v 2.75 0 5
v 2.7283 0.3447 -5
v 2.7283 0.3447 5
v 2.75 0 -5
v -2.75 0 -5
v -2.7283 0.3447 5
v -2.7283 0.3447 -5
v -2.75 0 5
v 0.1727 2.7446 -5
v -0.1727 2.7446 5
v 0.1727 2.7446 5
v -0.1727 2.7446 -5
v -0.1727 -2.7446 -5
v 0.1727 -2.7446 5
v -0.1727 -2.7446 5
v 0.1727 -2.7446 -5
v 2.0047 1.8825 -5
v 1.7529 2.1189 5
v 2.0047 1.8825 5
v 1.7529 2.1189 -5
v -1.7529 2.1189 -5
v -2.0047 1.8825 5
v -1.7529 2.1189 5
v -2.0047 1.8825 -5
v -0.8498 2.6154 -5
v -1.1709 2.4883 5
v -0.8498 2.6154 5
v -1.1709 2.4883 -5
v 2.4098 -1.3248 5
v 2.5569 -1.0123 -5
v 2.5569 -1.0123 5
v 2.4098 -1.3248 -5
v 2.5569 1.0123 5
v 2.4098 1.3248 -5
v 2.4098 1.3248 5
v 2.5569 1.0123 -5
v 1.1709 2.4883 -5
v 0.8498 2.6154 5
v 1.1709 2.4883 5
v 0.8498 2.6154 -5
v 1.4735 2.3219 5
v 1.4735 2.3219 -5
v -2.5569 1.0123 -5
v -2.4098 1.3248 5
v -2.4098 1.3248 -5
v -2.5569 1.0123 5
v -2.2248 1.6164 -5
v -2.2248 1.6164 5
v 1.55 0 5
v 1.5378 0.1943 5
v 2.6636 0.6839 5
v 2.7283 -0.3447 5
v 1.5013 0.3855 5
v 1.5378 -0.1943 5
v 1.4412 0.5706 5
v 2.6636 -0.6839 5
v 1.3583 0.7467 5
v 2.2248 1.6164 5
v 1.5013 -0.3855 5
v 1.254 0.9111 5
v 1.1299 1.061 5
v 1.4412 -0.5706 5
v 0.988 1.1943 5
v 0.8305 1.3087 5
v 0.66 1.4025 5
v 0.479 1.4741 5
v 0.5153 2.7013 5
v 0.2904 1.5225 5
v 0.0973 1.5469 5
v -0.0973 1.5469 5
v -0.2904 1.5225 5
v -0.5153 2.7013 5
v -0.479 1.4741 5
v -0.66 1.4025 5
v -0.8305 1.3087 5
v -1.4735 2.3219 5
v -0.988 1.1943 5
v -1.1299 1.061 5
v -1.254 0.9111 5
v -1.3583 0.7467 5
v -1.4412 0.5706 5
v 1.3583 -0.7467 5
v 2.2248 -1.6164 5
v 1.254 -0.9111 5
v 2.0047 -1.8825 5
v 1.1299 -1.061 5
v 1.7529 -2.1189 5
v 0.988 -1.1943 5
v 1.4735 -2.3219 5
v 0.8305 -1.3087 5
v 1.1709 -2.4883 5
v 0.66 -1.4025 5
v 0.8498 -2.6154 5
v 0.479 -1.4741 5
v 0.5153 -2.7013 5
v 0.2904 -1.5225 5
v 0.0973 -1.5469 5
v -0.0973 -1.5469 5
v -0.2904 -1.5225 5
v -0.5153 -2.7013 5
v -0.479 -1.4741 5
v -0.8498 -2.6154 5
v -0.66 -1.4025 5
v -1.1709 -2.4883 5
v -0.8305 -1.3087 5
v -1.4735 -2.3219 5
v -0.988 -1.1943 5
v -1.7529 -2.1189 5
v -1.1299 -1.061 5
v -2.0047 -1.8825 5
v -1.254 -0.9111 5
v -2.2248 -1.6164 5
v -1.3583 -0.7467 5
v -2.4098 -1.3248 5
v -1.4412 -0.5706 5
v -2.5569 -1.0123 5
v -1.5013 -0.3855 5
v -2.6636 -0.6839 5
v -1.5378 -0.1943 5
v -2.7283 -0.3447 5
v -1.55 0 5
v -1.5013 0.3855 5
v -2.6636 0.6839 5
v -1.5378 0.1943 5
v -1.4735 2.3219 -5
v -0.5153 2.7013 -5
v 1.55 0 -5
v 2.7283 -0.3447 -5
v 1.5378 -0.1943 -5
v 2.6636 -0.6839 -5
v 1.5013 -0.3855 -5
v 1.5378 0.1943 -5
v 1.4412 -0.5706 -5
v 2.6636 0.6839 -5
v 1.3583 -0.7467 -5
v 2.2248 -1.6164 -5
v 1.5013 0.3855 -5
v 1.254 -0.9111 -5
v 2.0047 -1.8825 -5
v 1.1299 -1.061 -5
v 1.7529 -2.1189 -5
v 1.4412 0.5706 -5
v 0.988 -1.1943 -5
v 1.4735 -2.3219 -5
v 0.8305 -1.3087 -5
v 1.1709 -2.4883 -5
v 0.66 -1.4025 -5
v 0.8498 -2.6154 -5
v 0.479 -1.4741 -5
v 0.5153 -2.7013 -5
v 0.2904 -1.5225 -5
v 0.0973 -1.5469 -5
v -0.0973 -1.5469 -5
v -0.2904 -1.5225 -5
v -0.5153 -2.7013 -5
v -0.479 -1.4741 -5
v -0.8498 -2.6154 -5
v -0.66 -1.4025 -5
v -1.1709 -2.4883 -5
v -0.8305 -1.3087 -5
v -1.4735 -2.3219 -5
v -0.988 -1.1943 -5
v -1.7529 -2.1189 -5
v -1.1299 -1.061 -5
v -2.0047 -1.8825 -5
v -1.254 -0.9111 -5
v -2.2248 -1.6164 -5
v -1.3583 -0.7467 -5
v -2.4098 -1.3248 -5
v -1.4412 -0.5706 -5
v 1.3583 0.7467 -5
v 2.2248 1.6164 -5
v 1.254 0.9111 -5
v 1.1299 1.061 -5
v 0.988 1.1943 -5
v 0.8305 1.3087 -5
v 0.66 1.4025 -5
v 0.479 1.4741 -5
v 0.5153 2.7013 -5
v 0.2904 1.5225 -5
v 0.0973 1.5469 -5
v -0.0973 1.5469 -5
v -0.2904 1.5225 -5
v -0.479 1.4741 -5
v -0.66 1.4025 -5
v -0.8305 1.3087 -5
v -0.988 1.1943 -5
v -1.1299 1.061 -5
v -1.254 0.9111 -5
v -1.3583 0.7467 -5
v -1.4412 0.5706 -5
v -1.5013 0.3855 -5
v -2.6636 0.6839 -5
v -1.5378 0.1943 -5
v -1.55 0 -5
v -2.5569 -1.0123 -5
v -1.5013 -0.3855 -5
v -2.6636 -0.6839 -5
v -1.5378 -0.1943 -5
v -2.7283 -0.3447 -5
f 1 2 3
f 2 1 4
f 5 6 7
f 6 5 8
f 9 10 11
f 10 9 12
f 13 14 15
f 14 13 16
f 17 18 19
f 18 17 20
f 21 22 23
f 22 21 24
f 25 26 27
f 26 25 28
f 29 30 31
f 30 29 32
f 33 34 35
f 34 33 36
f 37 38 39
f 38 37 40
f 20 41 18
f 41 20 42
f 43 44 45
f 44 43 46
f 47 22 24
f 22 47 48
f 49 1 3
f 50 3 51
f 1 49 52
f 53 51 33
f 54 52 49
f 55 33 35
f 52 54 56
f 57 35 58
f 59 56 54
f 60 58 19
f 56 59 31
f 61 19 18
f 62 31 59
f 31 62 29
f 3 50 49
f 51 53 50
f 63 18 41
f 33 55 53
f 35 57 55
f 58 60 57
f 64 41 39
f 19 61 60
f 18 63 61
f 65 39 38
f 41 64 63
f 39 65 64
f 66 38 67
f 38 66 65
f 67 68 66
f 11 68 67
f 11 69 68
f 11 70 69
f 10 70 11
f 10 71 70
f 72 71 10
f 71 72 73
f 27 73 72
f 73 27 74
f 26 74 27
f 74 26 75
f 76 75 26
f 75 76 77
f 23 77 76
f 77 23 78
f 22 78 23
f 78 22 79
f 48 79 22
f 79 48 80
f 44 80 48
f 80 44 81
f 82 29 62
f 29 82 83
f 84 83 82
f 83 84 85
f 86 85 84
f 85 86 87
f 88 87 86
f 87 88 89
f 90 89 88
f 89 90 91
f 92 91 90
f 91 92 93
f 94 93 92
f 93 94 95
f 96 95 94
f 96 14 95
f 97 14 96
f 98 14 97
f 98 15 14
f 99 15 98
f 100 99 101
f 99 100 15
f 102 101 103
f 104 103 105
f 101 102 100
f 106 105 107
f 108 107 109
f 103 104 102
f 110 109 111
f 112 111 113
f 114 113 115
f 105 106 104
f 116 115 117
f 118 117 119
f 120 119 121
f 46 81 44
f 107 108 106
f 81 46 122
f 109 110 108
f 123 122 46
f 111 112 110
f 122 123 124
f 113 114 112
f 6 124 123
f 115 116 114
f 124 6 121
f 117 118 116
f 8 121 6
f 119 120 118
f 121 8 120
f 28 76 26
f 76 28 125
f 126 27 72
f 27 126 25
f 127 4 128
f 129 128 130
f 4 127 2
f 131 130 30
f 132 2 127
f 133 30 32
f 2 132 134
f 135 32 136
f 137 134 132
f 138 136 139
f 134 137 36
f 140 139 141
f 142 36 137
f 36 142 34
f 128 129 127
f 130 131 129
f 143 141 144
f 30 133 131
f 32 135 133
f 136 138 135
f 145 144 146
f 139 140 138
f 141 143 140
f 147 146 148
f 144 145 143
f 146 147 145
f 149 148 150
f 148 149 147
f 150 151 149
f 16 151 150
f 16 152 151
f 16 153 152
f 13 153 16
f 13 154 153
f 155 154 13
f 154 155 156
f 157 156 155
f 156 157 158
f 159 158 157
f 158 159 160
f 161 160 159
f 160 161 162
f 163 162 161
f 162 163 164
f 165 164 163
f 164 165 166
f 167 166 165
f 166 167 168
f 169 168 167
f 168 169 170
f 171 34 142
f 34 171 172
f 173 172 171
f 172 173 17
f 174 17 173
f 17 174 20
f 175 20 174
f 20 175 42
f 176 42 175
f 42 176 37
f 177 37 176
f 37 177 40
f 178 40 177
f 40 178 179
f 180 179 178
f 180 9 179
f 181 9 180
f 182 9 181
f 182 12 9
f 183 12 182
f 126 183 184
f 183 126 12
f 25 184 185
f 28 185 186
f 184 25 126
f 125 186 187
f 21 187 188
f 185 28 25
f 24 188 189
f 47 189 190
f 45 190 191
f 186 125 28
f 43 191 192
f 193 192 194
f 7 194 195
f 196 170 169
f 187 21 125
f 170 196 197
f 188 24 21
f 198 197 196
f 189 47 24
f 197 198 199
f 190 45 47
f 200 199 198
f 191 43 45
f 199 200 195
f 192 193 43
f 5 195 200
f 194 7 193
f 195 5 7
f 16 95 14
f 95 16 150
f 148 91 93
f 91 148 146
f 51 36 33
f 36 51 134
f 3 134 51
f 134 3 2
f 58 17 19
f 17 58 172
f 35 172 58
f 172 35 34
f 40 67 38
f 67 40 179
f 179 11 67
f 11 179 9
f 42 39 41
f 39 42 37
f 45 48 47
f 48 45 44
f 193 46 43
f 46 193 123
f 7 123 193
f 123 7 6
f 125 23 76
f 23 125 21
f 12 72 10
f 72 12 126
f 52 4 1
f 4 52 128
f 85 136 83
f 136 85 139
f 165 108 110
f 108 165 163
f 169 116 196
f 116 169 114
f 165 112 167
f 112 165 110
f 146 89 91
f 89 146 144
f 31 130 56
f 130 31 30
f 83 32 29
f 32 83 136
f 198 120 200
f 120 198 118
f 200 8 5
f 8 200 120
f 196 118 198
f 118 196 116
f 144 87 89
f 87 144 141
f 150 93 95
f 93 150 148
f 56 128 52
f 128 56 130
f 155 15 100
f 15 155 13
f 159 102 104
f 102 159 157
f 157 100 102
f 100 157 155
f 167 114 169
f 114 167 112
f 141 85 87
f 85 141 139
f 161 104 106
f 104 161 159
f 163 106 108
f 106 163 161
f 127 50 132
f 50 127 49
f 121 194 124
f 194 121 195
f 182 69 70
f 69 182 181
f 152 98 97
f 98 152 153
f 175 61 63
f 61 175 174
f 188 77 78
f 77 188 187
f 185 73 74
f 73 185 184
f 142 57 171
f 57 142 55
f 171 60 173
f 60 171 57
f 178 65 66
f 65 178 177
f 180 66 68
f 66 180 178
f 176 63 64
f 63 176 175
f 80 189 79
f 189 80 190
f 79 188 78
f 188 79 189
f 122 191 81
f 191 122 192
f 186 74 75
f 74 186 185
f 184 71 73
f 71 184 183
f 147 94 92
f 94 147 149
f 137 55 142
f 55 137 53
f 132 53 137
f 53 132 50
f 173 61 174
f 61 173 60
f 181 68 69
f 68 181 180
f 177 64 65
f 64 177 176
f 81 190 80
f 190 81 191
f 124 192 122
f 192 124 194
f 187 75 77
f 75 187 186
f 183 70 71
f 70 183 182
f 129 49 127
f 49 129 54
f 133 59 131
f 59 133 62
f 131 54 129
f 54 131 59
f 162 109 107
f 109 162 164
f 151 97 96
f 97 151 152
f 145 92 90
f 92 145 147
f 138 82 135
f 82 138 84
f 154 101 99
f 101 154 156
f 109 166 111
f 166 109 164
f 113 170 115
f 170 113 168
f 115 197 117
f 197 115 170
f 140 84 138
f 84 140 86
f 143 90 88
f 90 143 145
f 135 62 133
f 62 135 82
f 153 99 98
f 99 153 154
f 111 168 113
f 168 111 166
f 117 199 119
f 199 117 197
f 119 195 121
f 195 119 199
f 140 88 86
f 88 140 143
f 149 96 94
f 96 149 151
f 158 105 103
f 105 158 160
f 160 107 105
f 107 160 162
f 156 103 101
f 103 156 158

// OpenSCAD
$fn = 50;


difference() {
	union() {
		translate(v = [0, 0, -5.0000000000]) {
			cylinder(h = 10, r = 2.7500000000);
		}
	}
	union() {
		translate(v = [0, 0, -100.0000000000]) {
			cylinder(h = 200, r = 1.5500000000);
		}
	}
}
